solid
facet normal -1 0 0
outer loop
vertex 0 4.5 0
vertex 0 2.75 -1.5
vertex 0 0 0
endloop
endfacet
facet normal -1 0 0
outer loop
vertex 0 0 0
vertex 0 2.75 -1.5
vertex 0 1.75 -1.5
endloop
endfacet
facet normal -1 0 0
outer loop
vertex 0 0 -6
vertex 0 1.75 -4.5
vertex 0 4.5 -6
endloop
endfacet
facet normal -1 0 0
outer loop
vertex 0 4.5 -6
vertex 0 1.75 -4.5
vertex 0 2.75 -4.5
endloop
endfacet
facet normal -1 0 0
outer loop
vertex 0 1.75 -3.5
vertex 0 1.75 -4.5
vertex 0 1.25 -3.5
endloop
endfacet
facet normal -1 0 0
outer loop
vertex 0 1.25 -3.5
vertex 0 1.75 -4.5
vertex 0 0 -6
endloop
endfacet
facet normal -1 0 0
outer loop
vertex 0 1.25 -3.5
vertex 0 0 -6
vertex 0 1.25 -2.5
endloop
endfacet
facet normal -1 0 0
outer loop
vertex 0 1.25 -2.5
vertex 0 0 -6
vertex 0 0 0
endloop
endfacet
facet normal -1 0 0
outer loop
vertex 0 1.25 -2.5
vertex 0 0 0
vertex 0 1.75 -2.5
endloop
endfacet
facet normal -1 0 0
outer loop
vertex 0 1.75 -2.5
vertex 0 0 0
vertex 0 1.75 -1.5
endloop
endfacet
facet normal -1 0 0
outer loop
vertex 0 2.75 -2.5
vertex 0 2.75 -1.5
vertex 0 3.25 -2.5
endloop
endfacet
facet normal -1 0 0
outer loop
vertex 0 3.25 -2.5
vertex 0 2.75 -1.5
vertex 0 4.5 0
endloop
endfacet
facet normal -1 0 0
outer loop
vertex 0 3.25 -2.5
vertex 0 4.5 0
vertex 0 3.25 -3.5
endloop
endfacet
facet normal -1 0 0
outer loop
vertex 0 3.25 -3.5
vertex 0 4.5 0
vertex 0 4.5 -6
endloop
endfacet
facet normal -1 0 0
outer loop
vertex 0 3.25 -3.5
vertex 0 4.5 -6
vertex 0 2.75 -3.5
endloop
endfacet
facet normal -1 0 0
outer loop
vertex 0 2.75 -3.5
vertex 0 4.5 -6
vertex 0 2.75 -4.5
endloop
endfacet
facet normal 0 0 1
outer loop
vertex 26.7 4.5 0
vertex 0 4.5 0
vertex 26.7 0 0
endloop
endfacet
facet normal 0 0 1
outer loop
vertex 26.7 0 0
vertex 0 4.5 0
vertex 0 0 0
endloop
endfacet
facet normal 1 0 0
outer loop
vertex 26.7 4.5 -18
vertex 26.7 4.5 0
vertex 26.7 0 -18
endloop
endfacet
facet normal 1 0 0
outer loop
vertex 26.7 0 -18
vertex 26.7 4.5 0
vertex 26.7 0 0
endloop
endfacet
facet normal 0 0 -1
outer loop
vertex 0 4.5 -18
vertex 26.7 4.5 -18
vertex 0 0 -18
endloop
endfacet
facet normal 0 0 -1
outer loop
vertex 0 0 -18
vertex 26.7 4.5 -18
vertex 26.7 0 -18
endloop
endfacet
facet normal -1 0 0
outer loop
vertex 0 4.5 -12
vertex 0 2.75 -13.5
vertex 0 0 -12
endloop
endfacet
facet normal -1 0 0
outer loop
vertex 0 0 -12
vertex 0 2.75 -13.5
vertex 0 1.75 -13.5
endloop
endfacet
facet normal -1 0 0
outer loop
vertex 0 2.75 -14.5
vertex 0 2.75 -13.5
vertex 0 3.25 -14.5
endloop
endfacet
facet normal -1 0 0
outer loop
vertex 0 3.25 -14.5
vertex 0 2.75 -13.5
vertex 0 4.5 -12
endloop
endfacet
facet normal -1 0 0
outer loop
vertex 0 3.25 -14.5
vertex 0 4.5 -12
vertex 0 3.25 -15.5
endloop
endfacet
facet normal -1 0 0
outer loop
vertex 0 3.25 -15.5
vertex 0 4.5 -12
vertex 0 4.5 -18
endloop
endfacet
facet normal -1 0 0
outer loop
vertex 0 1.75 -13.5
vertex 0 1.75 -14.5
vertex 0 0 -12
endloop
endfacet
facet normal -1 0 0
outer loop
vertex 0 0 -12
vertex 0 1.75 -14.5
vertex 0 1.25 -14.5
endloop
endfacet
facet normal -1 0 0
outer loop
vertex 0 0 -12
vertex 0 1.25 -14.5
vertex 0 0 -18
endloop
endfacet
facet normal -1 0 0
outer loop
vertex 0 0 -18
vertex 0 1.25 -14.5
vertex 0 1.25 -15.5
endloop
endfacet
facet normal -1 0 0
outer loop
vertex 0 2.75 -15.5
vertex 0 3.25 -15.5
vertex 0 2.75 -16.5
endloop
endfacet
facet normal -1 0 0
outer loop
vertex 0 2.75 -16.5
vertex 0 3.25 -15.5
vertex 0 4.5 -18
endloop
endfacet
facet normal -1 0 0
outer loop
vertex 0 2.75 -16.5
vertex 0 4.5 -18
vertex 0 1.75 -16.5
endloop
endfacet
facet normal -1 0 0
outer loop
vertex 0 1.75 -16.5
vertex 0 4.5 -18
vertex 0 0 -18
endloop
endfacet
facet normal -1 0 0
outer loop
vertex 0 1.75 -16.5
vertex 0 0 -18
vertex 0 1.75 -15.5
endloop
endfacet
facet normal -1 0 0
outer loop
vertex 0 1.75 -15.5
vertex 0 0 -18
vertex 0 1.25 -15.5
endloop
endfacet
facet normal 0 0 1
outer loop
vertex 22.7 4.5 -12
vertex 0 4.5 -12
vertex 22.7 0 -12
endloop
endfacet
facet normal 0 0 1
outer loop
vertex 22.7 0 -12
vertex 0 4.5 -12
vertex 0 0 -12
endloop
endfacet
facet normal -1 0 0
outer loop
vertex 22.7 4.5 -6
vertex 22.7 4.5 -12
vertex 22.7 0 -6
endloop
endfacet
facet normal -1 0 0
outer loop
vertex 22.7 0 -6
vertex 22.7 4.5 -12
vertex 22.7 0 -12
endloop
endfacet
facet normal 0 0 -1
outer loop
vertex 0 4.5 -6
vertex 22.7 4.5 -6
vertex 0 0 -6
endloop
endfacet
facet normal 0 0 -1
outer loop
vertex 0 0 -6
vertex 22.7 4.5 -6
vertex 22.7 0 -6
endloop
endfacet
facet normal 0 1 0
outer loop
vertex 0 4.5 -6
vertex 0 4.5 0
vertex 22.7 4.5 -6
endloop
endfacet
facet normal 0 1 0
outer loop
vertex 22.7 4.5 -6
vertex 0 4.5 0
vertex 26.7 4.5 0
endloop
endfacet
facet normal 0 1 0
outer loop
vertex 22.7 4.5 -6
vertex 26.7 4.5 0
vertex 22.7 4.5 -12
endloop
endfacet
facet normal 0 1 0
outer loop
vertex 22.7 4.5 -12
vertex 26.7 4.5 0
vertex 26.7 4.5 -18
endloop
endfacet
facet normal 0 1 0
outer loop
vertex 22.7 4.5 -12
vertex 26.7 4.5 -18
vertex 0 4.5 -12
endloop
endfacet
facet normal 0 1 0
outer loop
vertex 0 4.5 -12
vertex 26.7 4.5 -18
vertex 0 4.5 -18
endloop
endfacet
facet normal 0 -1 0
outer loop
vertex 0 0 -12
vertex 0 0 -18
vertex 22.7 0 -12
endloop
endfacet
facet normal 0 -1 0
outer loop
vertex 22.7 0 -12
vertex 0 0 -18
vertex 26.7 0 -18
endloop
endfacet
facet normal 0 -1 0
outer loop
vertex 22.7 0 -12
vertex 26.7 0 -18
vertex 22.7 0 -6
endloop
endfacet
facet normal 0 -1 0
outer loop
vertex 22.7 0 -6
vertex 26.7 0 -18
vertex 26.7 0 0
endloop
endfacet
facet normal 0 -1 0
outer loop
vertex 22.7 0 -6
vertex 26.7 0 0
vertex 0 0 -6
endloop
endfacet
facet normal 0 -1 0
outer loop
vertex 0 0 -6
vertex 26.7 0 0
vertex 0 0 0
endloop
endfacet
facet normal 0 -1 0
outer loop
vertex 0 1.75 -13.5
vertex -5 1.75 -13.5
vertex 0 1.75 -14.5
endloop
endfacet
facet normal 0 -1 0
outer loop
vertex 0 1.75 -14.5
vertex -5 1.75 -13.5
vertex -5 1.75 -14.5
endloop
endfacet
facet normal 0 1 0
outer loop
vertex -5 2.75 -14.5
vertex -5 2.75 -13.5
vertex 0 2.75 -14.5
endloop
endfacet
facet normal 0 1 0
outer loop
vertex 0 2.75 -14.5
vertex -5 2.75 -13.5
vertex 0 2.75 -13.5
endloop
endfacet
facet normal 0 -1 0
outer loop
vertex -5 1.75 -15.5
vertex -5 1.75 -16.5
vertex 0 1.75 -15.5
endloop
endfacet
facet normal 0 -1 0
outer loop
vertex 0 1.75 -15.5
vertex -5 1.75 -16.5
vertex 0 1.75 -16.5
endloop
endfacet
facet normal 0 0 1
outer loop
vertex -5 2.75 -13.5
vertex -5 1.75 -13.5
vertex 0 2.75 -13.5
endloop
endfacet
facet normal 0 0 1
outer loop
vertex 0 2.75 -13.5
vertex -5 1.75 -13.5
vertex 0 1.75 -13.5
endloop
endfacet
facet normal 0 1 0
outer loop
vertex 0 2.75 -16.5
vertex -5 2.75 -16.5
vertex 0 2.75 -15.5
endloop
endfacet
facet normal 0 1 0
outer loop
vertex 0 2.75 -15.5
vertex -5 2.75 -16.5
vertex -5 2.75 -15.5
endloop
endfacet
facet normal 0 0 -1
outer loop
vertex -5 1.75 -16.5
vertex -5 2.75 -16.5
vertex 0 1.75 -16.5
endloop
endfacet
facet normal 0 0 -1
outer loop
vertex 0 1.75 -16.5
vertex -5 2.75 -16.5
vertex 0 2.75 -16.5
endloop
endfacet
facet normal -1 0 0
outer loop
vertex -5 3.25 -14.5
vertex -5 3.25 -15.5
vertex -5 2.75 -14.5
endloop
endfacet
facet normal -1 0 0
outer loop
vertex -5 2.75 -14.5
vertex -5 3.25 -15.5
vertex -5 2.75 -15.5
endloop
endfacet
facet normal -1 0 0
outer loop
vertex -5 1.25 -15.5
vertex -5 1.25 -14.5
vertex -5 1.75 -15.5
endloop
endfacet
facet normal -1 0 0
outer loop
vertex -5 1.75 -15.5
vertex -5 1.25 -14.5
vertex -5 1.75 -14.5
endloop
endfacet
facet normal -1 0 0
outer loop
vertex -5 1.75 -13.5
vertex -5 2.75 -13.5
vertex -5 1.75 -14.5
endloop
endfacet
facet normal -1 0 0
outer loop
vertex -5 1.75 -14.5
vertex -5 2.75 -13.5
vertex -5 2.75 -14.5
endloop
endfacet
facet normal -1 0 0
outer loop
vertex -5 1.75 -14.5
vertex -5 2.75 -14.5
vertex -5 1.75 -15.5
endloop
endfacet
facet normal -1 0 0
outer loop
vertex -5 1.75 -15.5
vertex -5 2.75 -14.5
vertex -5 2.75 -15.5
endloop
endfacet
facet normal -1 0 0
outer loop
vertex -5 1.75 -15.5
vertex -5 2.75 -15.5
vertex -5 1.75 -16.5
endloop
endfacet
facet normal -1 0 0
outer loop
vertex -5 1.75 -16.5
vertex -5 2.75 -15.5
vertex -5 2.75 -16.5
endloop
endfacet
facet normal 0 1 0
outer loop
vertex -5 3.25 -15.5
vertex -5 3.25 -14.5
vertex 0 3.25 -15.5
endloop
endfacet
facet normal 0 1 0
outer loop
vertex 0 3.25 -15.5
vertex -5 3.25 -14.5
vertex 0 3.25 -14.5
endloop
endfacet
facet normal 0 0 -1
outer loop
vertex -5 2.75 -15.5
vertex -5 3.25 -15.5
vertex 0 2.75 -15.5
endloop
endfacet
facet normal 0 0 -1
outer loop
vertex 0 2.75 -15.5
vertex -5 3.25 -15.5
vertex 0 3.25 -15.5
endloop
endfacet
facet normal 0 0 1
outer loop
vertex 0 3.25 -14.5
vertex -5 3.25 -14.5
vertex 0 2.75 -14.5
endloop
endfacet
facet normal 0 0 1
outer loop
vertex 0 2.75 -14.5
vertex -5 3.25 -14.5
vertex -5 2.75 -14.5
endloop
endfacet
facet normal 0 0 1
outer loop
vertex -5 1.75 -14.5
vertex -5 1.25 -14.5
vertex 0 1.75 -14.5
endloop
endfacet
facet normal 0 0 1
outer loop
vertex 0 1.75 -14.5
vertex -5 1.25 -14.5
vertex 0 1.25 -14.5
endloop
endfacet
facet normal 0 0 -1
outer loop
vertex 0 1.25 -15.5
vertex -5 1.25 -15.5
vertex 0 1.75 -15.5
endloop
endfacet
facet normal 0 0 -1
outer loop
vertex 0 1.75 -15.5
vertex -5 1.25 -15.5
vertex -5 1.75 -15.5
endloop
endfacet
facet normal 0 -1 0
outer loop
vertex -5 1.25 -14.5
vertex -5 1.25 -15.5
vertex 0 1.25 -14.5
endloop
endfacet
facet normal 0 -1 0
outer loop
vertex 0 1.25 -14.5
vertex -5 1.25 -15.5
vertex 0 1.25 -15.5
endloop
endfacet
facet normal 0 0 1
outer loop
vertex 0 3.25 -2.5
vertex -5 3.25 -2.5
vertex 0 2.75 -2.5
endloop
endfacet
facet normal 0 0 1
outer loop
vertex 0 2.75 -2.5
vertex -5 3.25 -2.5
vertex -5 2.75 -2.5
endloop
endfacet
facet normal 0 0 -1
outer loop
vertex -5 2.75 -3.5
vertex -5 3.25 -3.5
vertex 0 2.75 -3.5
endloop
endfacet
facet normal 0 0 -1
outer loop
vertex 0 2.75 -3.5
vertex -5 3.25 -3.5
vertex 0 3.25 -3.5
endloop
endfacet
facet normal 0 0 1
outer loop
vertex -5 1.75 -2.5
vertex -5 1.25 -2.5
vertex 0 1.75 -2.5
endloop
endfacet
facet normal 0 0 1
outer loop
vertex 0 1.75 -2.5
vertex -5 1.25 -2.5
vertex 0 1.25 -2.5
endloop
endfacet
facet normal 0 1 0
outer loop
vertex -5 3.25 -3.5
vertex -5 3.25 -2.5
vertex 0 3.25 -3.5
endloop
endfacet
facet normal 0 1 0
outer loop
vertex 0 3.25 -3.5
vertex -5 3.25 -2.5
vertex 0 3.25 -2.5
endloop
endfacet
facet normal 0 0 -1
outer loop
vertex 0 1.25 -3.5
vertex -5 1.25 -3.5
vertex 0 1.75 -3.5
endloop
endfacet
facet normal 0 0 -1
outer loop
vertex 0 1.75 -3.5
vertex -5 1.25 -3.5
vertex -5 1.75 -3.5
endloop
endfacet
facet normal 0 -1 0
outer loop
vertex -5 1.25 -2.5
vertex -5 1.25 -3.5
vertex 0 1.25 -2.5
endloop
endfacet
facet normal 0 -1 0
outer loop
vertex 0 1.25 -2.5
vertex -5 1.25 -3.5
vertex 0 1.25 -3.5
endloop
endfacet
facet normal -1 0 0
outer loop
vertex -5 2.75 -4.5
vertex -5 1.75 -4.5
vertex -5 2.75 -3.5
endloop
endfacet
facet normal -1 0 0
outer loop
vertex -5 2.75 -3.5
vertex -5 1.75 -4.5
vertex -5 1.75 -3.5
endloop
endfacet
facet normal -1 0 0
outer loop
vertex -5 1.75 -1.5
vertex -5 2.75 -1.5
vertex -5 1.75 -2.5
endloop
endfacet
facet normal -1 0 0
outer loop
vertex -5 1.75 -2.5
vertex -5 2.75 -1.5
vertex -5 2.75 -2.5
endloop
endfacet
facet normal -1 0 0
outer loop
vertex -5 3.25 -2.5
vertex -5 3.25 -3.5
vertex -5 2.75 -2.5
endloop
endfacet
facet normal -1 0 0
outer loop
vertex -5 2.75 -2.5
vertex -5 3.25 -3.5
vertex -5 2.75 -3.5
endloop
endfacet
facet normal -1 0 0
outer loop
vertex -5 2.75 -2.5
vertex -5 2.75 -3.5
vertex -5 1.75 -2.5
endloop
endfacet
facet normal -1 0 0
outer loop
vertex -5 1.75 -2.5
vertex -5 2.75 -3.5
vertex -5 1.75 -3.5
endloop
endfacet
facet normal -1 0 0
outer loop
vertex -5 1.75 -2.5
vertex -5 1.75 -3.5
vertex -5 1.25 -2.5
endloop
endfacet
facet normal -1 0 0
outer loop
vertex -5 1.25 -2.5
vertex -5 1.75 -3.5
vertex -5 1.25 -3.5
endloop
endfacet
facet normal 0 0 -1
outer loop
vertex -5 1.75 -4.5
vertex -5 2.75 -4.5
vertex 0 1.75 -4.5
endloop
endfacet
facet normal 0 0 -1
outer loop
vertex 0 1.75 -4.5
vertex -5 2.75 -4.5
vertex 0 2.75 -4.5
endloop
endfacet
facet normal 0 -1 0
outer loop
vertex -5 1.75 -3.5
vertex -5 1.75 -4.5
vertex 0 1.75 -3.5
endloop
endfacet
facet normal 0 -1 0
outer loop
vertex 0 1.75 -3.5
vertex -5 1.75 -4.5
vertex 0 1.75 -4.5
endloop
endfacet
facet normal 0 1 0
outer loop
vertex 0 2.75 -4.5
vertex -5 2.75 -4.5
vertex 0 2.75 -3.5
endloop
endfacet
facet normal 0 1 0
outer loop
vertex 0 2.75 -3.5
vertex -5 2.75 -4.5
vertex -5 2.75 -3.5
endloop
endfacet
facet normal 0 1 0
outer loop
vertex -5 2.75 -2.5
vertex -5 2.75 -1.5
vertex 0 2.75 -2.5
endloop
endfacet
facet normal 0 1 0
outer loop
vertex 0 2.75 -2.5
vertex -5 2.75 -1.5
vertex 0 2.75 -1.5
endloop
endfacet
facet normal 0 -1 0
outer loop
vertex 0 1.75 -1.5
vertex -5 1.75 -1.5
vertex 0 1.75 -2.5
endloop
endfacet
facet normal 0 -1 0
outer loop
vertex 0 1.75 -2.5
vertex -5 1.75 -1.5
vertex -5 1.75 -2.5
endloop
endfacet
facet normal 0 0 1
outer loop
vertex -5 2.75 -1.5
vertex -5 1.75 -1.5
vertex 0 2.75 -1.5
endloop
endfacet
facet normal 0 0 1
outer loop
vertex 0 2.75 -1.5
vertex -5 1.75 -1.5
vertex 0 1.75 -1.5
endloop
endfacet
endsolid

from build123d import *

# Parameters (mm, degrees)
BOSS_EXTRUDE1_DEPTH = 4.5
SKETCH3_W           = 3
SKETCH3_H           = 1
SKETCH3_W_2         = 1
SKETCH3_H_2         = 2
EXTRUDE_THIN1_DEPTH = 5


with BuildPart() as part:
    # Sketch1 → Boss-Extrude1 (new body)
    with BuildSketch(Plane(origin=(0, 0, 0), x_dir=(1, 0, 0), z_dir=(0, 1, 0))):
        Polygon((0, 12), (0, 18), (26.7, 18), (26.7, 0), (0, 0), (0, 6), (22.7, 6), (22.7, 12), align=None)
    extrude(amount=BOSS_EXTRUDE1_DEPTH)

    # Sketch3 → Extrude-Thin1 (add)
    with BuildSketch(Plane.ZY):
        with Locations((-15, 2.25)):
            Rectangle(SKETCH3_W, SKETCH3_H)
        with Locations((-15, 2.25)):
            Rectangle(SKETCH3_W_2, SKETCH3_H_2)
        with Locations((-3, 2.25)):
            Rectangle(SKETCH3_W_2, SKETCH3_H_2)
        with Locations((-3, 2.25)):
            Rectangle(SKETCH3_W, SKETCH3_H)
    extrude(amount=EXTRUDE_THIN1_DEPTH)


solid = part.part
